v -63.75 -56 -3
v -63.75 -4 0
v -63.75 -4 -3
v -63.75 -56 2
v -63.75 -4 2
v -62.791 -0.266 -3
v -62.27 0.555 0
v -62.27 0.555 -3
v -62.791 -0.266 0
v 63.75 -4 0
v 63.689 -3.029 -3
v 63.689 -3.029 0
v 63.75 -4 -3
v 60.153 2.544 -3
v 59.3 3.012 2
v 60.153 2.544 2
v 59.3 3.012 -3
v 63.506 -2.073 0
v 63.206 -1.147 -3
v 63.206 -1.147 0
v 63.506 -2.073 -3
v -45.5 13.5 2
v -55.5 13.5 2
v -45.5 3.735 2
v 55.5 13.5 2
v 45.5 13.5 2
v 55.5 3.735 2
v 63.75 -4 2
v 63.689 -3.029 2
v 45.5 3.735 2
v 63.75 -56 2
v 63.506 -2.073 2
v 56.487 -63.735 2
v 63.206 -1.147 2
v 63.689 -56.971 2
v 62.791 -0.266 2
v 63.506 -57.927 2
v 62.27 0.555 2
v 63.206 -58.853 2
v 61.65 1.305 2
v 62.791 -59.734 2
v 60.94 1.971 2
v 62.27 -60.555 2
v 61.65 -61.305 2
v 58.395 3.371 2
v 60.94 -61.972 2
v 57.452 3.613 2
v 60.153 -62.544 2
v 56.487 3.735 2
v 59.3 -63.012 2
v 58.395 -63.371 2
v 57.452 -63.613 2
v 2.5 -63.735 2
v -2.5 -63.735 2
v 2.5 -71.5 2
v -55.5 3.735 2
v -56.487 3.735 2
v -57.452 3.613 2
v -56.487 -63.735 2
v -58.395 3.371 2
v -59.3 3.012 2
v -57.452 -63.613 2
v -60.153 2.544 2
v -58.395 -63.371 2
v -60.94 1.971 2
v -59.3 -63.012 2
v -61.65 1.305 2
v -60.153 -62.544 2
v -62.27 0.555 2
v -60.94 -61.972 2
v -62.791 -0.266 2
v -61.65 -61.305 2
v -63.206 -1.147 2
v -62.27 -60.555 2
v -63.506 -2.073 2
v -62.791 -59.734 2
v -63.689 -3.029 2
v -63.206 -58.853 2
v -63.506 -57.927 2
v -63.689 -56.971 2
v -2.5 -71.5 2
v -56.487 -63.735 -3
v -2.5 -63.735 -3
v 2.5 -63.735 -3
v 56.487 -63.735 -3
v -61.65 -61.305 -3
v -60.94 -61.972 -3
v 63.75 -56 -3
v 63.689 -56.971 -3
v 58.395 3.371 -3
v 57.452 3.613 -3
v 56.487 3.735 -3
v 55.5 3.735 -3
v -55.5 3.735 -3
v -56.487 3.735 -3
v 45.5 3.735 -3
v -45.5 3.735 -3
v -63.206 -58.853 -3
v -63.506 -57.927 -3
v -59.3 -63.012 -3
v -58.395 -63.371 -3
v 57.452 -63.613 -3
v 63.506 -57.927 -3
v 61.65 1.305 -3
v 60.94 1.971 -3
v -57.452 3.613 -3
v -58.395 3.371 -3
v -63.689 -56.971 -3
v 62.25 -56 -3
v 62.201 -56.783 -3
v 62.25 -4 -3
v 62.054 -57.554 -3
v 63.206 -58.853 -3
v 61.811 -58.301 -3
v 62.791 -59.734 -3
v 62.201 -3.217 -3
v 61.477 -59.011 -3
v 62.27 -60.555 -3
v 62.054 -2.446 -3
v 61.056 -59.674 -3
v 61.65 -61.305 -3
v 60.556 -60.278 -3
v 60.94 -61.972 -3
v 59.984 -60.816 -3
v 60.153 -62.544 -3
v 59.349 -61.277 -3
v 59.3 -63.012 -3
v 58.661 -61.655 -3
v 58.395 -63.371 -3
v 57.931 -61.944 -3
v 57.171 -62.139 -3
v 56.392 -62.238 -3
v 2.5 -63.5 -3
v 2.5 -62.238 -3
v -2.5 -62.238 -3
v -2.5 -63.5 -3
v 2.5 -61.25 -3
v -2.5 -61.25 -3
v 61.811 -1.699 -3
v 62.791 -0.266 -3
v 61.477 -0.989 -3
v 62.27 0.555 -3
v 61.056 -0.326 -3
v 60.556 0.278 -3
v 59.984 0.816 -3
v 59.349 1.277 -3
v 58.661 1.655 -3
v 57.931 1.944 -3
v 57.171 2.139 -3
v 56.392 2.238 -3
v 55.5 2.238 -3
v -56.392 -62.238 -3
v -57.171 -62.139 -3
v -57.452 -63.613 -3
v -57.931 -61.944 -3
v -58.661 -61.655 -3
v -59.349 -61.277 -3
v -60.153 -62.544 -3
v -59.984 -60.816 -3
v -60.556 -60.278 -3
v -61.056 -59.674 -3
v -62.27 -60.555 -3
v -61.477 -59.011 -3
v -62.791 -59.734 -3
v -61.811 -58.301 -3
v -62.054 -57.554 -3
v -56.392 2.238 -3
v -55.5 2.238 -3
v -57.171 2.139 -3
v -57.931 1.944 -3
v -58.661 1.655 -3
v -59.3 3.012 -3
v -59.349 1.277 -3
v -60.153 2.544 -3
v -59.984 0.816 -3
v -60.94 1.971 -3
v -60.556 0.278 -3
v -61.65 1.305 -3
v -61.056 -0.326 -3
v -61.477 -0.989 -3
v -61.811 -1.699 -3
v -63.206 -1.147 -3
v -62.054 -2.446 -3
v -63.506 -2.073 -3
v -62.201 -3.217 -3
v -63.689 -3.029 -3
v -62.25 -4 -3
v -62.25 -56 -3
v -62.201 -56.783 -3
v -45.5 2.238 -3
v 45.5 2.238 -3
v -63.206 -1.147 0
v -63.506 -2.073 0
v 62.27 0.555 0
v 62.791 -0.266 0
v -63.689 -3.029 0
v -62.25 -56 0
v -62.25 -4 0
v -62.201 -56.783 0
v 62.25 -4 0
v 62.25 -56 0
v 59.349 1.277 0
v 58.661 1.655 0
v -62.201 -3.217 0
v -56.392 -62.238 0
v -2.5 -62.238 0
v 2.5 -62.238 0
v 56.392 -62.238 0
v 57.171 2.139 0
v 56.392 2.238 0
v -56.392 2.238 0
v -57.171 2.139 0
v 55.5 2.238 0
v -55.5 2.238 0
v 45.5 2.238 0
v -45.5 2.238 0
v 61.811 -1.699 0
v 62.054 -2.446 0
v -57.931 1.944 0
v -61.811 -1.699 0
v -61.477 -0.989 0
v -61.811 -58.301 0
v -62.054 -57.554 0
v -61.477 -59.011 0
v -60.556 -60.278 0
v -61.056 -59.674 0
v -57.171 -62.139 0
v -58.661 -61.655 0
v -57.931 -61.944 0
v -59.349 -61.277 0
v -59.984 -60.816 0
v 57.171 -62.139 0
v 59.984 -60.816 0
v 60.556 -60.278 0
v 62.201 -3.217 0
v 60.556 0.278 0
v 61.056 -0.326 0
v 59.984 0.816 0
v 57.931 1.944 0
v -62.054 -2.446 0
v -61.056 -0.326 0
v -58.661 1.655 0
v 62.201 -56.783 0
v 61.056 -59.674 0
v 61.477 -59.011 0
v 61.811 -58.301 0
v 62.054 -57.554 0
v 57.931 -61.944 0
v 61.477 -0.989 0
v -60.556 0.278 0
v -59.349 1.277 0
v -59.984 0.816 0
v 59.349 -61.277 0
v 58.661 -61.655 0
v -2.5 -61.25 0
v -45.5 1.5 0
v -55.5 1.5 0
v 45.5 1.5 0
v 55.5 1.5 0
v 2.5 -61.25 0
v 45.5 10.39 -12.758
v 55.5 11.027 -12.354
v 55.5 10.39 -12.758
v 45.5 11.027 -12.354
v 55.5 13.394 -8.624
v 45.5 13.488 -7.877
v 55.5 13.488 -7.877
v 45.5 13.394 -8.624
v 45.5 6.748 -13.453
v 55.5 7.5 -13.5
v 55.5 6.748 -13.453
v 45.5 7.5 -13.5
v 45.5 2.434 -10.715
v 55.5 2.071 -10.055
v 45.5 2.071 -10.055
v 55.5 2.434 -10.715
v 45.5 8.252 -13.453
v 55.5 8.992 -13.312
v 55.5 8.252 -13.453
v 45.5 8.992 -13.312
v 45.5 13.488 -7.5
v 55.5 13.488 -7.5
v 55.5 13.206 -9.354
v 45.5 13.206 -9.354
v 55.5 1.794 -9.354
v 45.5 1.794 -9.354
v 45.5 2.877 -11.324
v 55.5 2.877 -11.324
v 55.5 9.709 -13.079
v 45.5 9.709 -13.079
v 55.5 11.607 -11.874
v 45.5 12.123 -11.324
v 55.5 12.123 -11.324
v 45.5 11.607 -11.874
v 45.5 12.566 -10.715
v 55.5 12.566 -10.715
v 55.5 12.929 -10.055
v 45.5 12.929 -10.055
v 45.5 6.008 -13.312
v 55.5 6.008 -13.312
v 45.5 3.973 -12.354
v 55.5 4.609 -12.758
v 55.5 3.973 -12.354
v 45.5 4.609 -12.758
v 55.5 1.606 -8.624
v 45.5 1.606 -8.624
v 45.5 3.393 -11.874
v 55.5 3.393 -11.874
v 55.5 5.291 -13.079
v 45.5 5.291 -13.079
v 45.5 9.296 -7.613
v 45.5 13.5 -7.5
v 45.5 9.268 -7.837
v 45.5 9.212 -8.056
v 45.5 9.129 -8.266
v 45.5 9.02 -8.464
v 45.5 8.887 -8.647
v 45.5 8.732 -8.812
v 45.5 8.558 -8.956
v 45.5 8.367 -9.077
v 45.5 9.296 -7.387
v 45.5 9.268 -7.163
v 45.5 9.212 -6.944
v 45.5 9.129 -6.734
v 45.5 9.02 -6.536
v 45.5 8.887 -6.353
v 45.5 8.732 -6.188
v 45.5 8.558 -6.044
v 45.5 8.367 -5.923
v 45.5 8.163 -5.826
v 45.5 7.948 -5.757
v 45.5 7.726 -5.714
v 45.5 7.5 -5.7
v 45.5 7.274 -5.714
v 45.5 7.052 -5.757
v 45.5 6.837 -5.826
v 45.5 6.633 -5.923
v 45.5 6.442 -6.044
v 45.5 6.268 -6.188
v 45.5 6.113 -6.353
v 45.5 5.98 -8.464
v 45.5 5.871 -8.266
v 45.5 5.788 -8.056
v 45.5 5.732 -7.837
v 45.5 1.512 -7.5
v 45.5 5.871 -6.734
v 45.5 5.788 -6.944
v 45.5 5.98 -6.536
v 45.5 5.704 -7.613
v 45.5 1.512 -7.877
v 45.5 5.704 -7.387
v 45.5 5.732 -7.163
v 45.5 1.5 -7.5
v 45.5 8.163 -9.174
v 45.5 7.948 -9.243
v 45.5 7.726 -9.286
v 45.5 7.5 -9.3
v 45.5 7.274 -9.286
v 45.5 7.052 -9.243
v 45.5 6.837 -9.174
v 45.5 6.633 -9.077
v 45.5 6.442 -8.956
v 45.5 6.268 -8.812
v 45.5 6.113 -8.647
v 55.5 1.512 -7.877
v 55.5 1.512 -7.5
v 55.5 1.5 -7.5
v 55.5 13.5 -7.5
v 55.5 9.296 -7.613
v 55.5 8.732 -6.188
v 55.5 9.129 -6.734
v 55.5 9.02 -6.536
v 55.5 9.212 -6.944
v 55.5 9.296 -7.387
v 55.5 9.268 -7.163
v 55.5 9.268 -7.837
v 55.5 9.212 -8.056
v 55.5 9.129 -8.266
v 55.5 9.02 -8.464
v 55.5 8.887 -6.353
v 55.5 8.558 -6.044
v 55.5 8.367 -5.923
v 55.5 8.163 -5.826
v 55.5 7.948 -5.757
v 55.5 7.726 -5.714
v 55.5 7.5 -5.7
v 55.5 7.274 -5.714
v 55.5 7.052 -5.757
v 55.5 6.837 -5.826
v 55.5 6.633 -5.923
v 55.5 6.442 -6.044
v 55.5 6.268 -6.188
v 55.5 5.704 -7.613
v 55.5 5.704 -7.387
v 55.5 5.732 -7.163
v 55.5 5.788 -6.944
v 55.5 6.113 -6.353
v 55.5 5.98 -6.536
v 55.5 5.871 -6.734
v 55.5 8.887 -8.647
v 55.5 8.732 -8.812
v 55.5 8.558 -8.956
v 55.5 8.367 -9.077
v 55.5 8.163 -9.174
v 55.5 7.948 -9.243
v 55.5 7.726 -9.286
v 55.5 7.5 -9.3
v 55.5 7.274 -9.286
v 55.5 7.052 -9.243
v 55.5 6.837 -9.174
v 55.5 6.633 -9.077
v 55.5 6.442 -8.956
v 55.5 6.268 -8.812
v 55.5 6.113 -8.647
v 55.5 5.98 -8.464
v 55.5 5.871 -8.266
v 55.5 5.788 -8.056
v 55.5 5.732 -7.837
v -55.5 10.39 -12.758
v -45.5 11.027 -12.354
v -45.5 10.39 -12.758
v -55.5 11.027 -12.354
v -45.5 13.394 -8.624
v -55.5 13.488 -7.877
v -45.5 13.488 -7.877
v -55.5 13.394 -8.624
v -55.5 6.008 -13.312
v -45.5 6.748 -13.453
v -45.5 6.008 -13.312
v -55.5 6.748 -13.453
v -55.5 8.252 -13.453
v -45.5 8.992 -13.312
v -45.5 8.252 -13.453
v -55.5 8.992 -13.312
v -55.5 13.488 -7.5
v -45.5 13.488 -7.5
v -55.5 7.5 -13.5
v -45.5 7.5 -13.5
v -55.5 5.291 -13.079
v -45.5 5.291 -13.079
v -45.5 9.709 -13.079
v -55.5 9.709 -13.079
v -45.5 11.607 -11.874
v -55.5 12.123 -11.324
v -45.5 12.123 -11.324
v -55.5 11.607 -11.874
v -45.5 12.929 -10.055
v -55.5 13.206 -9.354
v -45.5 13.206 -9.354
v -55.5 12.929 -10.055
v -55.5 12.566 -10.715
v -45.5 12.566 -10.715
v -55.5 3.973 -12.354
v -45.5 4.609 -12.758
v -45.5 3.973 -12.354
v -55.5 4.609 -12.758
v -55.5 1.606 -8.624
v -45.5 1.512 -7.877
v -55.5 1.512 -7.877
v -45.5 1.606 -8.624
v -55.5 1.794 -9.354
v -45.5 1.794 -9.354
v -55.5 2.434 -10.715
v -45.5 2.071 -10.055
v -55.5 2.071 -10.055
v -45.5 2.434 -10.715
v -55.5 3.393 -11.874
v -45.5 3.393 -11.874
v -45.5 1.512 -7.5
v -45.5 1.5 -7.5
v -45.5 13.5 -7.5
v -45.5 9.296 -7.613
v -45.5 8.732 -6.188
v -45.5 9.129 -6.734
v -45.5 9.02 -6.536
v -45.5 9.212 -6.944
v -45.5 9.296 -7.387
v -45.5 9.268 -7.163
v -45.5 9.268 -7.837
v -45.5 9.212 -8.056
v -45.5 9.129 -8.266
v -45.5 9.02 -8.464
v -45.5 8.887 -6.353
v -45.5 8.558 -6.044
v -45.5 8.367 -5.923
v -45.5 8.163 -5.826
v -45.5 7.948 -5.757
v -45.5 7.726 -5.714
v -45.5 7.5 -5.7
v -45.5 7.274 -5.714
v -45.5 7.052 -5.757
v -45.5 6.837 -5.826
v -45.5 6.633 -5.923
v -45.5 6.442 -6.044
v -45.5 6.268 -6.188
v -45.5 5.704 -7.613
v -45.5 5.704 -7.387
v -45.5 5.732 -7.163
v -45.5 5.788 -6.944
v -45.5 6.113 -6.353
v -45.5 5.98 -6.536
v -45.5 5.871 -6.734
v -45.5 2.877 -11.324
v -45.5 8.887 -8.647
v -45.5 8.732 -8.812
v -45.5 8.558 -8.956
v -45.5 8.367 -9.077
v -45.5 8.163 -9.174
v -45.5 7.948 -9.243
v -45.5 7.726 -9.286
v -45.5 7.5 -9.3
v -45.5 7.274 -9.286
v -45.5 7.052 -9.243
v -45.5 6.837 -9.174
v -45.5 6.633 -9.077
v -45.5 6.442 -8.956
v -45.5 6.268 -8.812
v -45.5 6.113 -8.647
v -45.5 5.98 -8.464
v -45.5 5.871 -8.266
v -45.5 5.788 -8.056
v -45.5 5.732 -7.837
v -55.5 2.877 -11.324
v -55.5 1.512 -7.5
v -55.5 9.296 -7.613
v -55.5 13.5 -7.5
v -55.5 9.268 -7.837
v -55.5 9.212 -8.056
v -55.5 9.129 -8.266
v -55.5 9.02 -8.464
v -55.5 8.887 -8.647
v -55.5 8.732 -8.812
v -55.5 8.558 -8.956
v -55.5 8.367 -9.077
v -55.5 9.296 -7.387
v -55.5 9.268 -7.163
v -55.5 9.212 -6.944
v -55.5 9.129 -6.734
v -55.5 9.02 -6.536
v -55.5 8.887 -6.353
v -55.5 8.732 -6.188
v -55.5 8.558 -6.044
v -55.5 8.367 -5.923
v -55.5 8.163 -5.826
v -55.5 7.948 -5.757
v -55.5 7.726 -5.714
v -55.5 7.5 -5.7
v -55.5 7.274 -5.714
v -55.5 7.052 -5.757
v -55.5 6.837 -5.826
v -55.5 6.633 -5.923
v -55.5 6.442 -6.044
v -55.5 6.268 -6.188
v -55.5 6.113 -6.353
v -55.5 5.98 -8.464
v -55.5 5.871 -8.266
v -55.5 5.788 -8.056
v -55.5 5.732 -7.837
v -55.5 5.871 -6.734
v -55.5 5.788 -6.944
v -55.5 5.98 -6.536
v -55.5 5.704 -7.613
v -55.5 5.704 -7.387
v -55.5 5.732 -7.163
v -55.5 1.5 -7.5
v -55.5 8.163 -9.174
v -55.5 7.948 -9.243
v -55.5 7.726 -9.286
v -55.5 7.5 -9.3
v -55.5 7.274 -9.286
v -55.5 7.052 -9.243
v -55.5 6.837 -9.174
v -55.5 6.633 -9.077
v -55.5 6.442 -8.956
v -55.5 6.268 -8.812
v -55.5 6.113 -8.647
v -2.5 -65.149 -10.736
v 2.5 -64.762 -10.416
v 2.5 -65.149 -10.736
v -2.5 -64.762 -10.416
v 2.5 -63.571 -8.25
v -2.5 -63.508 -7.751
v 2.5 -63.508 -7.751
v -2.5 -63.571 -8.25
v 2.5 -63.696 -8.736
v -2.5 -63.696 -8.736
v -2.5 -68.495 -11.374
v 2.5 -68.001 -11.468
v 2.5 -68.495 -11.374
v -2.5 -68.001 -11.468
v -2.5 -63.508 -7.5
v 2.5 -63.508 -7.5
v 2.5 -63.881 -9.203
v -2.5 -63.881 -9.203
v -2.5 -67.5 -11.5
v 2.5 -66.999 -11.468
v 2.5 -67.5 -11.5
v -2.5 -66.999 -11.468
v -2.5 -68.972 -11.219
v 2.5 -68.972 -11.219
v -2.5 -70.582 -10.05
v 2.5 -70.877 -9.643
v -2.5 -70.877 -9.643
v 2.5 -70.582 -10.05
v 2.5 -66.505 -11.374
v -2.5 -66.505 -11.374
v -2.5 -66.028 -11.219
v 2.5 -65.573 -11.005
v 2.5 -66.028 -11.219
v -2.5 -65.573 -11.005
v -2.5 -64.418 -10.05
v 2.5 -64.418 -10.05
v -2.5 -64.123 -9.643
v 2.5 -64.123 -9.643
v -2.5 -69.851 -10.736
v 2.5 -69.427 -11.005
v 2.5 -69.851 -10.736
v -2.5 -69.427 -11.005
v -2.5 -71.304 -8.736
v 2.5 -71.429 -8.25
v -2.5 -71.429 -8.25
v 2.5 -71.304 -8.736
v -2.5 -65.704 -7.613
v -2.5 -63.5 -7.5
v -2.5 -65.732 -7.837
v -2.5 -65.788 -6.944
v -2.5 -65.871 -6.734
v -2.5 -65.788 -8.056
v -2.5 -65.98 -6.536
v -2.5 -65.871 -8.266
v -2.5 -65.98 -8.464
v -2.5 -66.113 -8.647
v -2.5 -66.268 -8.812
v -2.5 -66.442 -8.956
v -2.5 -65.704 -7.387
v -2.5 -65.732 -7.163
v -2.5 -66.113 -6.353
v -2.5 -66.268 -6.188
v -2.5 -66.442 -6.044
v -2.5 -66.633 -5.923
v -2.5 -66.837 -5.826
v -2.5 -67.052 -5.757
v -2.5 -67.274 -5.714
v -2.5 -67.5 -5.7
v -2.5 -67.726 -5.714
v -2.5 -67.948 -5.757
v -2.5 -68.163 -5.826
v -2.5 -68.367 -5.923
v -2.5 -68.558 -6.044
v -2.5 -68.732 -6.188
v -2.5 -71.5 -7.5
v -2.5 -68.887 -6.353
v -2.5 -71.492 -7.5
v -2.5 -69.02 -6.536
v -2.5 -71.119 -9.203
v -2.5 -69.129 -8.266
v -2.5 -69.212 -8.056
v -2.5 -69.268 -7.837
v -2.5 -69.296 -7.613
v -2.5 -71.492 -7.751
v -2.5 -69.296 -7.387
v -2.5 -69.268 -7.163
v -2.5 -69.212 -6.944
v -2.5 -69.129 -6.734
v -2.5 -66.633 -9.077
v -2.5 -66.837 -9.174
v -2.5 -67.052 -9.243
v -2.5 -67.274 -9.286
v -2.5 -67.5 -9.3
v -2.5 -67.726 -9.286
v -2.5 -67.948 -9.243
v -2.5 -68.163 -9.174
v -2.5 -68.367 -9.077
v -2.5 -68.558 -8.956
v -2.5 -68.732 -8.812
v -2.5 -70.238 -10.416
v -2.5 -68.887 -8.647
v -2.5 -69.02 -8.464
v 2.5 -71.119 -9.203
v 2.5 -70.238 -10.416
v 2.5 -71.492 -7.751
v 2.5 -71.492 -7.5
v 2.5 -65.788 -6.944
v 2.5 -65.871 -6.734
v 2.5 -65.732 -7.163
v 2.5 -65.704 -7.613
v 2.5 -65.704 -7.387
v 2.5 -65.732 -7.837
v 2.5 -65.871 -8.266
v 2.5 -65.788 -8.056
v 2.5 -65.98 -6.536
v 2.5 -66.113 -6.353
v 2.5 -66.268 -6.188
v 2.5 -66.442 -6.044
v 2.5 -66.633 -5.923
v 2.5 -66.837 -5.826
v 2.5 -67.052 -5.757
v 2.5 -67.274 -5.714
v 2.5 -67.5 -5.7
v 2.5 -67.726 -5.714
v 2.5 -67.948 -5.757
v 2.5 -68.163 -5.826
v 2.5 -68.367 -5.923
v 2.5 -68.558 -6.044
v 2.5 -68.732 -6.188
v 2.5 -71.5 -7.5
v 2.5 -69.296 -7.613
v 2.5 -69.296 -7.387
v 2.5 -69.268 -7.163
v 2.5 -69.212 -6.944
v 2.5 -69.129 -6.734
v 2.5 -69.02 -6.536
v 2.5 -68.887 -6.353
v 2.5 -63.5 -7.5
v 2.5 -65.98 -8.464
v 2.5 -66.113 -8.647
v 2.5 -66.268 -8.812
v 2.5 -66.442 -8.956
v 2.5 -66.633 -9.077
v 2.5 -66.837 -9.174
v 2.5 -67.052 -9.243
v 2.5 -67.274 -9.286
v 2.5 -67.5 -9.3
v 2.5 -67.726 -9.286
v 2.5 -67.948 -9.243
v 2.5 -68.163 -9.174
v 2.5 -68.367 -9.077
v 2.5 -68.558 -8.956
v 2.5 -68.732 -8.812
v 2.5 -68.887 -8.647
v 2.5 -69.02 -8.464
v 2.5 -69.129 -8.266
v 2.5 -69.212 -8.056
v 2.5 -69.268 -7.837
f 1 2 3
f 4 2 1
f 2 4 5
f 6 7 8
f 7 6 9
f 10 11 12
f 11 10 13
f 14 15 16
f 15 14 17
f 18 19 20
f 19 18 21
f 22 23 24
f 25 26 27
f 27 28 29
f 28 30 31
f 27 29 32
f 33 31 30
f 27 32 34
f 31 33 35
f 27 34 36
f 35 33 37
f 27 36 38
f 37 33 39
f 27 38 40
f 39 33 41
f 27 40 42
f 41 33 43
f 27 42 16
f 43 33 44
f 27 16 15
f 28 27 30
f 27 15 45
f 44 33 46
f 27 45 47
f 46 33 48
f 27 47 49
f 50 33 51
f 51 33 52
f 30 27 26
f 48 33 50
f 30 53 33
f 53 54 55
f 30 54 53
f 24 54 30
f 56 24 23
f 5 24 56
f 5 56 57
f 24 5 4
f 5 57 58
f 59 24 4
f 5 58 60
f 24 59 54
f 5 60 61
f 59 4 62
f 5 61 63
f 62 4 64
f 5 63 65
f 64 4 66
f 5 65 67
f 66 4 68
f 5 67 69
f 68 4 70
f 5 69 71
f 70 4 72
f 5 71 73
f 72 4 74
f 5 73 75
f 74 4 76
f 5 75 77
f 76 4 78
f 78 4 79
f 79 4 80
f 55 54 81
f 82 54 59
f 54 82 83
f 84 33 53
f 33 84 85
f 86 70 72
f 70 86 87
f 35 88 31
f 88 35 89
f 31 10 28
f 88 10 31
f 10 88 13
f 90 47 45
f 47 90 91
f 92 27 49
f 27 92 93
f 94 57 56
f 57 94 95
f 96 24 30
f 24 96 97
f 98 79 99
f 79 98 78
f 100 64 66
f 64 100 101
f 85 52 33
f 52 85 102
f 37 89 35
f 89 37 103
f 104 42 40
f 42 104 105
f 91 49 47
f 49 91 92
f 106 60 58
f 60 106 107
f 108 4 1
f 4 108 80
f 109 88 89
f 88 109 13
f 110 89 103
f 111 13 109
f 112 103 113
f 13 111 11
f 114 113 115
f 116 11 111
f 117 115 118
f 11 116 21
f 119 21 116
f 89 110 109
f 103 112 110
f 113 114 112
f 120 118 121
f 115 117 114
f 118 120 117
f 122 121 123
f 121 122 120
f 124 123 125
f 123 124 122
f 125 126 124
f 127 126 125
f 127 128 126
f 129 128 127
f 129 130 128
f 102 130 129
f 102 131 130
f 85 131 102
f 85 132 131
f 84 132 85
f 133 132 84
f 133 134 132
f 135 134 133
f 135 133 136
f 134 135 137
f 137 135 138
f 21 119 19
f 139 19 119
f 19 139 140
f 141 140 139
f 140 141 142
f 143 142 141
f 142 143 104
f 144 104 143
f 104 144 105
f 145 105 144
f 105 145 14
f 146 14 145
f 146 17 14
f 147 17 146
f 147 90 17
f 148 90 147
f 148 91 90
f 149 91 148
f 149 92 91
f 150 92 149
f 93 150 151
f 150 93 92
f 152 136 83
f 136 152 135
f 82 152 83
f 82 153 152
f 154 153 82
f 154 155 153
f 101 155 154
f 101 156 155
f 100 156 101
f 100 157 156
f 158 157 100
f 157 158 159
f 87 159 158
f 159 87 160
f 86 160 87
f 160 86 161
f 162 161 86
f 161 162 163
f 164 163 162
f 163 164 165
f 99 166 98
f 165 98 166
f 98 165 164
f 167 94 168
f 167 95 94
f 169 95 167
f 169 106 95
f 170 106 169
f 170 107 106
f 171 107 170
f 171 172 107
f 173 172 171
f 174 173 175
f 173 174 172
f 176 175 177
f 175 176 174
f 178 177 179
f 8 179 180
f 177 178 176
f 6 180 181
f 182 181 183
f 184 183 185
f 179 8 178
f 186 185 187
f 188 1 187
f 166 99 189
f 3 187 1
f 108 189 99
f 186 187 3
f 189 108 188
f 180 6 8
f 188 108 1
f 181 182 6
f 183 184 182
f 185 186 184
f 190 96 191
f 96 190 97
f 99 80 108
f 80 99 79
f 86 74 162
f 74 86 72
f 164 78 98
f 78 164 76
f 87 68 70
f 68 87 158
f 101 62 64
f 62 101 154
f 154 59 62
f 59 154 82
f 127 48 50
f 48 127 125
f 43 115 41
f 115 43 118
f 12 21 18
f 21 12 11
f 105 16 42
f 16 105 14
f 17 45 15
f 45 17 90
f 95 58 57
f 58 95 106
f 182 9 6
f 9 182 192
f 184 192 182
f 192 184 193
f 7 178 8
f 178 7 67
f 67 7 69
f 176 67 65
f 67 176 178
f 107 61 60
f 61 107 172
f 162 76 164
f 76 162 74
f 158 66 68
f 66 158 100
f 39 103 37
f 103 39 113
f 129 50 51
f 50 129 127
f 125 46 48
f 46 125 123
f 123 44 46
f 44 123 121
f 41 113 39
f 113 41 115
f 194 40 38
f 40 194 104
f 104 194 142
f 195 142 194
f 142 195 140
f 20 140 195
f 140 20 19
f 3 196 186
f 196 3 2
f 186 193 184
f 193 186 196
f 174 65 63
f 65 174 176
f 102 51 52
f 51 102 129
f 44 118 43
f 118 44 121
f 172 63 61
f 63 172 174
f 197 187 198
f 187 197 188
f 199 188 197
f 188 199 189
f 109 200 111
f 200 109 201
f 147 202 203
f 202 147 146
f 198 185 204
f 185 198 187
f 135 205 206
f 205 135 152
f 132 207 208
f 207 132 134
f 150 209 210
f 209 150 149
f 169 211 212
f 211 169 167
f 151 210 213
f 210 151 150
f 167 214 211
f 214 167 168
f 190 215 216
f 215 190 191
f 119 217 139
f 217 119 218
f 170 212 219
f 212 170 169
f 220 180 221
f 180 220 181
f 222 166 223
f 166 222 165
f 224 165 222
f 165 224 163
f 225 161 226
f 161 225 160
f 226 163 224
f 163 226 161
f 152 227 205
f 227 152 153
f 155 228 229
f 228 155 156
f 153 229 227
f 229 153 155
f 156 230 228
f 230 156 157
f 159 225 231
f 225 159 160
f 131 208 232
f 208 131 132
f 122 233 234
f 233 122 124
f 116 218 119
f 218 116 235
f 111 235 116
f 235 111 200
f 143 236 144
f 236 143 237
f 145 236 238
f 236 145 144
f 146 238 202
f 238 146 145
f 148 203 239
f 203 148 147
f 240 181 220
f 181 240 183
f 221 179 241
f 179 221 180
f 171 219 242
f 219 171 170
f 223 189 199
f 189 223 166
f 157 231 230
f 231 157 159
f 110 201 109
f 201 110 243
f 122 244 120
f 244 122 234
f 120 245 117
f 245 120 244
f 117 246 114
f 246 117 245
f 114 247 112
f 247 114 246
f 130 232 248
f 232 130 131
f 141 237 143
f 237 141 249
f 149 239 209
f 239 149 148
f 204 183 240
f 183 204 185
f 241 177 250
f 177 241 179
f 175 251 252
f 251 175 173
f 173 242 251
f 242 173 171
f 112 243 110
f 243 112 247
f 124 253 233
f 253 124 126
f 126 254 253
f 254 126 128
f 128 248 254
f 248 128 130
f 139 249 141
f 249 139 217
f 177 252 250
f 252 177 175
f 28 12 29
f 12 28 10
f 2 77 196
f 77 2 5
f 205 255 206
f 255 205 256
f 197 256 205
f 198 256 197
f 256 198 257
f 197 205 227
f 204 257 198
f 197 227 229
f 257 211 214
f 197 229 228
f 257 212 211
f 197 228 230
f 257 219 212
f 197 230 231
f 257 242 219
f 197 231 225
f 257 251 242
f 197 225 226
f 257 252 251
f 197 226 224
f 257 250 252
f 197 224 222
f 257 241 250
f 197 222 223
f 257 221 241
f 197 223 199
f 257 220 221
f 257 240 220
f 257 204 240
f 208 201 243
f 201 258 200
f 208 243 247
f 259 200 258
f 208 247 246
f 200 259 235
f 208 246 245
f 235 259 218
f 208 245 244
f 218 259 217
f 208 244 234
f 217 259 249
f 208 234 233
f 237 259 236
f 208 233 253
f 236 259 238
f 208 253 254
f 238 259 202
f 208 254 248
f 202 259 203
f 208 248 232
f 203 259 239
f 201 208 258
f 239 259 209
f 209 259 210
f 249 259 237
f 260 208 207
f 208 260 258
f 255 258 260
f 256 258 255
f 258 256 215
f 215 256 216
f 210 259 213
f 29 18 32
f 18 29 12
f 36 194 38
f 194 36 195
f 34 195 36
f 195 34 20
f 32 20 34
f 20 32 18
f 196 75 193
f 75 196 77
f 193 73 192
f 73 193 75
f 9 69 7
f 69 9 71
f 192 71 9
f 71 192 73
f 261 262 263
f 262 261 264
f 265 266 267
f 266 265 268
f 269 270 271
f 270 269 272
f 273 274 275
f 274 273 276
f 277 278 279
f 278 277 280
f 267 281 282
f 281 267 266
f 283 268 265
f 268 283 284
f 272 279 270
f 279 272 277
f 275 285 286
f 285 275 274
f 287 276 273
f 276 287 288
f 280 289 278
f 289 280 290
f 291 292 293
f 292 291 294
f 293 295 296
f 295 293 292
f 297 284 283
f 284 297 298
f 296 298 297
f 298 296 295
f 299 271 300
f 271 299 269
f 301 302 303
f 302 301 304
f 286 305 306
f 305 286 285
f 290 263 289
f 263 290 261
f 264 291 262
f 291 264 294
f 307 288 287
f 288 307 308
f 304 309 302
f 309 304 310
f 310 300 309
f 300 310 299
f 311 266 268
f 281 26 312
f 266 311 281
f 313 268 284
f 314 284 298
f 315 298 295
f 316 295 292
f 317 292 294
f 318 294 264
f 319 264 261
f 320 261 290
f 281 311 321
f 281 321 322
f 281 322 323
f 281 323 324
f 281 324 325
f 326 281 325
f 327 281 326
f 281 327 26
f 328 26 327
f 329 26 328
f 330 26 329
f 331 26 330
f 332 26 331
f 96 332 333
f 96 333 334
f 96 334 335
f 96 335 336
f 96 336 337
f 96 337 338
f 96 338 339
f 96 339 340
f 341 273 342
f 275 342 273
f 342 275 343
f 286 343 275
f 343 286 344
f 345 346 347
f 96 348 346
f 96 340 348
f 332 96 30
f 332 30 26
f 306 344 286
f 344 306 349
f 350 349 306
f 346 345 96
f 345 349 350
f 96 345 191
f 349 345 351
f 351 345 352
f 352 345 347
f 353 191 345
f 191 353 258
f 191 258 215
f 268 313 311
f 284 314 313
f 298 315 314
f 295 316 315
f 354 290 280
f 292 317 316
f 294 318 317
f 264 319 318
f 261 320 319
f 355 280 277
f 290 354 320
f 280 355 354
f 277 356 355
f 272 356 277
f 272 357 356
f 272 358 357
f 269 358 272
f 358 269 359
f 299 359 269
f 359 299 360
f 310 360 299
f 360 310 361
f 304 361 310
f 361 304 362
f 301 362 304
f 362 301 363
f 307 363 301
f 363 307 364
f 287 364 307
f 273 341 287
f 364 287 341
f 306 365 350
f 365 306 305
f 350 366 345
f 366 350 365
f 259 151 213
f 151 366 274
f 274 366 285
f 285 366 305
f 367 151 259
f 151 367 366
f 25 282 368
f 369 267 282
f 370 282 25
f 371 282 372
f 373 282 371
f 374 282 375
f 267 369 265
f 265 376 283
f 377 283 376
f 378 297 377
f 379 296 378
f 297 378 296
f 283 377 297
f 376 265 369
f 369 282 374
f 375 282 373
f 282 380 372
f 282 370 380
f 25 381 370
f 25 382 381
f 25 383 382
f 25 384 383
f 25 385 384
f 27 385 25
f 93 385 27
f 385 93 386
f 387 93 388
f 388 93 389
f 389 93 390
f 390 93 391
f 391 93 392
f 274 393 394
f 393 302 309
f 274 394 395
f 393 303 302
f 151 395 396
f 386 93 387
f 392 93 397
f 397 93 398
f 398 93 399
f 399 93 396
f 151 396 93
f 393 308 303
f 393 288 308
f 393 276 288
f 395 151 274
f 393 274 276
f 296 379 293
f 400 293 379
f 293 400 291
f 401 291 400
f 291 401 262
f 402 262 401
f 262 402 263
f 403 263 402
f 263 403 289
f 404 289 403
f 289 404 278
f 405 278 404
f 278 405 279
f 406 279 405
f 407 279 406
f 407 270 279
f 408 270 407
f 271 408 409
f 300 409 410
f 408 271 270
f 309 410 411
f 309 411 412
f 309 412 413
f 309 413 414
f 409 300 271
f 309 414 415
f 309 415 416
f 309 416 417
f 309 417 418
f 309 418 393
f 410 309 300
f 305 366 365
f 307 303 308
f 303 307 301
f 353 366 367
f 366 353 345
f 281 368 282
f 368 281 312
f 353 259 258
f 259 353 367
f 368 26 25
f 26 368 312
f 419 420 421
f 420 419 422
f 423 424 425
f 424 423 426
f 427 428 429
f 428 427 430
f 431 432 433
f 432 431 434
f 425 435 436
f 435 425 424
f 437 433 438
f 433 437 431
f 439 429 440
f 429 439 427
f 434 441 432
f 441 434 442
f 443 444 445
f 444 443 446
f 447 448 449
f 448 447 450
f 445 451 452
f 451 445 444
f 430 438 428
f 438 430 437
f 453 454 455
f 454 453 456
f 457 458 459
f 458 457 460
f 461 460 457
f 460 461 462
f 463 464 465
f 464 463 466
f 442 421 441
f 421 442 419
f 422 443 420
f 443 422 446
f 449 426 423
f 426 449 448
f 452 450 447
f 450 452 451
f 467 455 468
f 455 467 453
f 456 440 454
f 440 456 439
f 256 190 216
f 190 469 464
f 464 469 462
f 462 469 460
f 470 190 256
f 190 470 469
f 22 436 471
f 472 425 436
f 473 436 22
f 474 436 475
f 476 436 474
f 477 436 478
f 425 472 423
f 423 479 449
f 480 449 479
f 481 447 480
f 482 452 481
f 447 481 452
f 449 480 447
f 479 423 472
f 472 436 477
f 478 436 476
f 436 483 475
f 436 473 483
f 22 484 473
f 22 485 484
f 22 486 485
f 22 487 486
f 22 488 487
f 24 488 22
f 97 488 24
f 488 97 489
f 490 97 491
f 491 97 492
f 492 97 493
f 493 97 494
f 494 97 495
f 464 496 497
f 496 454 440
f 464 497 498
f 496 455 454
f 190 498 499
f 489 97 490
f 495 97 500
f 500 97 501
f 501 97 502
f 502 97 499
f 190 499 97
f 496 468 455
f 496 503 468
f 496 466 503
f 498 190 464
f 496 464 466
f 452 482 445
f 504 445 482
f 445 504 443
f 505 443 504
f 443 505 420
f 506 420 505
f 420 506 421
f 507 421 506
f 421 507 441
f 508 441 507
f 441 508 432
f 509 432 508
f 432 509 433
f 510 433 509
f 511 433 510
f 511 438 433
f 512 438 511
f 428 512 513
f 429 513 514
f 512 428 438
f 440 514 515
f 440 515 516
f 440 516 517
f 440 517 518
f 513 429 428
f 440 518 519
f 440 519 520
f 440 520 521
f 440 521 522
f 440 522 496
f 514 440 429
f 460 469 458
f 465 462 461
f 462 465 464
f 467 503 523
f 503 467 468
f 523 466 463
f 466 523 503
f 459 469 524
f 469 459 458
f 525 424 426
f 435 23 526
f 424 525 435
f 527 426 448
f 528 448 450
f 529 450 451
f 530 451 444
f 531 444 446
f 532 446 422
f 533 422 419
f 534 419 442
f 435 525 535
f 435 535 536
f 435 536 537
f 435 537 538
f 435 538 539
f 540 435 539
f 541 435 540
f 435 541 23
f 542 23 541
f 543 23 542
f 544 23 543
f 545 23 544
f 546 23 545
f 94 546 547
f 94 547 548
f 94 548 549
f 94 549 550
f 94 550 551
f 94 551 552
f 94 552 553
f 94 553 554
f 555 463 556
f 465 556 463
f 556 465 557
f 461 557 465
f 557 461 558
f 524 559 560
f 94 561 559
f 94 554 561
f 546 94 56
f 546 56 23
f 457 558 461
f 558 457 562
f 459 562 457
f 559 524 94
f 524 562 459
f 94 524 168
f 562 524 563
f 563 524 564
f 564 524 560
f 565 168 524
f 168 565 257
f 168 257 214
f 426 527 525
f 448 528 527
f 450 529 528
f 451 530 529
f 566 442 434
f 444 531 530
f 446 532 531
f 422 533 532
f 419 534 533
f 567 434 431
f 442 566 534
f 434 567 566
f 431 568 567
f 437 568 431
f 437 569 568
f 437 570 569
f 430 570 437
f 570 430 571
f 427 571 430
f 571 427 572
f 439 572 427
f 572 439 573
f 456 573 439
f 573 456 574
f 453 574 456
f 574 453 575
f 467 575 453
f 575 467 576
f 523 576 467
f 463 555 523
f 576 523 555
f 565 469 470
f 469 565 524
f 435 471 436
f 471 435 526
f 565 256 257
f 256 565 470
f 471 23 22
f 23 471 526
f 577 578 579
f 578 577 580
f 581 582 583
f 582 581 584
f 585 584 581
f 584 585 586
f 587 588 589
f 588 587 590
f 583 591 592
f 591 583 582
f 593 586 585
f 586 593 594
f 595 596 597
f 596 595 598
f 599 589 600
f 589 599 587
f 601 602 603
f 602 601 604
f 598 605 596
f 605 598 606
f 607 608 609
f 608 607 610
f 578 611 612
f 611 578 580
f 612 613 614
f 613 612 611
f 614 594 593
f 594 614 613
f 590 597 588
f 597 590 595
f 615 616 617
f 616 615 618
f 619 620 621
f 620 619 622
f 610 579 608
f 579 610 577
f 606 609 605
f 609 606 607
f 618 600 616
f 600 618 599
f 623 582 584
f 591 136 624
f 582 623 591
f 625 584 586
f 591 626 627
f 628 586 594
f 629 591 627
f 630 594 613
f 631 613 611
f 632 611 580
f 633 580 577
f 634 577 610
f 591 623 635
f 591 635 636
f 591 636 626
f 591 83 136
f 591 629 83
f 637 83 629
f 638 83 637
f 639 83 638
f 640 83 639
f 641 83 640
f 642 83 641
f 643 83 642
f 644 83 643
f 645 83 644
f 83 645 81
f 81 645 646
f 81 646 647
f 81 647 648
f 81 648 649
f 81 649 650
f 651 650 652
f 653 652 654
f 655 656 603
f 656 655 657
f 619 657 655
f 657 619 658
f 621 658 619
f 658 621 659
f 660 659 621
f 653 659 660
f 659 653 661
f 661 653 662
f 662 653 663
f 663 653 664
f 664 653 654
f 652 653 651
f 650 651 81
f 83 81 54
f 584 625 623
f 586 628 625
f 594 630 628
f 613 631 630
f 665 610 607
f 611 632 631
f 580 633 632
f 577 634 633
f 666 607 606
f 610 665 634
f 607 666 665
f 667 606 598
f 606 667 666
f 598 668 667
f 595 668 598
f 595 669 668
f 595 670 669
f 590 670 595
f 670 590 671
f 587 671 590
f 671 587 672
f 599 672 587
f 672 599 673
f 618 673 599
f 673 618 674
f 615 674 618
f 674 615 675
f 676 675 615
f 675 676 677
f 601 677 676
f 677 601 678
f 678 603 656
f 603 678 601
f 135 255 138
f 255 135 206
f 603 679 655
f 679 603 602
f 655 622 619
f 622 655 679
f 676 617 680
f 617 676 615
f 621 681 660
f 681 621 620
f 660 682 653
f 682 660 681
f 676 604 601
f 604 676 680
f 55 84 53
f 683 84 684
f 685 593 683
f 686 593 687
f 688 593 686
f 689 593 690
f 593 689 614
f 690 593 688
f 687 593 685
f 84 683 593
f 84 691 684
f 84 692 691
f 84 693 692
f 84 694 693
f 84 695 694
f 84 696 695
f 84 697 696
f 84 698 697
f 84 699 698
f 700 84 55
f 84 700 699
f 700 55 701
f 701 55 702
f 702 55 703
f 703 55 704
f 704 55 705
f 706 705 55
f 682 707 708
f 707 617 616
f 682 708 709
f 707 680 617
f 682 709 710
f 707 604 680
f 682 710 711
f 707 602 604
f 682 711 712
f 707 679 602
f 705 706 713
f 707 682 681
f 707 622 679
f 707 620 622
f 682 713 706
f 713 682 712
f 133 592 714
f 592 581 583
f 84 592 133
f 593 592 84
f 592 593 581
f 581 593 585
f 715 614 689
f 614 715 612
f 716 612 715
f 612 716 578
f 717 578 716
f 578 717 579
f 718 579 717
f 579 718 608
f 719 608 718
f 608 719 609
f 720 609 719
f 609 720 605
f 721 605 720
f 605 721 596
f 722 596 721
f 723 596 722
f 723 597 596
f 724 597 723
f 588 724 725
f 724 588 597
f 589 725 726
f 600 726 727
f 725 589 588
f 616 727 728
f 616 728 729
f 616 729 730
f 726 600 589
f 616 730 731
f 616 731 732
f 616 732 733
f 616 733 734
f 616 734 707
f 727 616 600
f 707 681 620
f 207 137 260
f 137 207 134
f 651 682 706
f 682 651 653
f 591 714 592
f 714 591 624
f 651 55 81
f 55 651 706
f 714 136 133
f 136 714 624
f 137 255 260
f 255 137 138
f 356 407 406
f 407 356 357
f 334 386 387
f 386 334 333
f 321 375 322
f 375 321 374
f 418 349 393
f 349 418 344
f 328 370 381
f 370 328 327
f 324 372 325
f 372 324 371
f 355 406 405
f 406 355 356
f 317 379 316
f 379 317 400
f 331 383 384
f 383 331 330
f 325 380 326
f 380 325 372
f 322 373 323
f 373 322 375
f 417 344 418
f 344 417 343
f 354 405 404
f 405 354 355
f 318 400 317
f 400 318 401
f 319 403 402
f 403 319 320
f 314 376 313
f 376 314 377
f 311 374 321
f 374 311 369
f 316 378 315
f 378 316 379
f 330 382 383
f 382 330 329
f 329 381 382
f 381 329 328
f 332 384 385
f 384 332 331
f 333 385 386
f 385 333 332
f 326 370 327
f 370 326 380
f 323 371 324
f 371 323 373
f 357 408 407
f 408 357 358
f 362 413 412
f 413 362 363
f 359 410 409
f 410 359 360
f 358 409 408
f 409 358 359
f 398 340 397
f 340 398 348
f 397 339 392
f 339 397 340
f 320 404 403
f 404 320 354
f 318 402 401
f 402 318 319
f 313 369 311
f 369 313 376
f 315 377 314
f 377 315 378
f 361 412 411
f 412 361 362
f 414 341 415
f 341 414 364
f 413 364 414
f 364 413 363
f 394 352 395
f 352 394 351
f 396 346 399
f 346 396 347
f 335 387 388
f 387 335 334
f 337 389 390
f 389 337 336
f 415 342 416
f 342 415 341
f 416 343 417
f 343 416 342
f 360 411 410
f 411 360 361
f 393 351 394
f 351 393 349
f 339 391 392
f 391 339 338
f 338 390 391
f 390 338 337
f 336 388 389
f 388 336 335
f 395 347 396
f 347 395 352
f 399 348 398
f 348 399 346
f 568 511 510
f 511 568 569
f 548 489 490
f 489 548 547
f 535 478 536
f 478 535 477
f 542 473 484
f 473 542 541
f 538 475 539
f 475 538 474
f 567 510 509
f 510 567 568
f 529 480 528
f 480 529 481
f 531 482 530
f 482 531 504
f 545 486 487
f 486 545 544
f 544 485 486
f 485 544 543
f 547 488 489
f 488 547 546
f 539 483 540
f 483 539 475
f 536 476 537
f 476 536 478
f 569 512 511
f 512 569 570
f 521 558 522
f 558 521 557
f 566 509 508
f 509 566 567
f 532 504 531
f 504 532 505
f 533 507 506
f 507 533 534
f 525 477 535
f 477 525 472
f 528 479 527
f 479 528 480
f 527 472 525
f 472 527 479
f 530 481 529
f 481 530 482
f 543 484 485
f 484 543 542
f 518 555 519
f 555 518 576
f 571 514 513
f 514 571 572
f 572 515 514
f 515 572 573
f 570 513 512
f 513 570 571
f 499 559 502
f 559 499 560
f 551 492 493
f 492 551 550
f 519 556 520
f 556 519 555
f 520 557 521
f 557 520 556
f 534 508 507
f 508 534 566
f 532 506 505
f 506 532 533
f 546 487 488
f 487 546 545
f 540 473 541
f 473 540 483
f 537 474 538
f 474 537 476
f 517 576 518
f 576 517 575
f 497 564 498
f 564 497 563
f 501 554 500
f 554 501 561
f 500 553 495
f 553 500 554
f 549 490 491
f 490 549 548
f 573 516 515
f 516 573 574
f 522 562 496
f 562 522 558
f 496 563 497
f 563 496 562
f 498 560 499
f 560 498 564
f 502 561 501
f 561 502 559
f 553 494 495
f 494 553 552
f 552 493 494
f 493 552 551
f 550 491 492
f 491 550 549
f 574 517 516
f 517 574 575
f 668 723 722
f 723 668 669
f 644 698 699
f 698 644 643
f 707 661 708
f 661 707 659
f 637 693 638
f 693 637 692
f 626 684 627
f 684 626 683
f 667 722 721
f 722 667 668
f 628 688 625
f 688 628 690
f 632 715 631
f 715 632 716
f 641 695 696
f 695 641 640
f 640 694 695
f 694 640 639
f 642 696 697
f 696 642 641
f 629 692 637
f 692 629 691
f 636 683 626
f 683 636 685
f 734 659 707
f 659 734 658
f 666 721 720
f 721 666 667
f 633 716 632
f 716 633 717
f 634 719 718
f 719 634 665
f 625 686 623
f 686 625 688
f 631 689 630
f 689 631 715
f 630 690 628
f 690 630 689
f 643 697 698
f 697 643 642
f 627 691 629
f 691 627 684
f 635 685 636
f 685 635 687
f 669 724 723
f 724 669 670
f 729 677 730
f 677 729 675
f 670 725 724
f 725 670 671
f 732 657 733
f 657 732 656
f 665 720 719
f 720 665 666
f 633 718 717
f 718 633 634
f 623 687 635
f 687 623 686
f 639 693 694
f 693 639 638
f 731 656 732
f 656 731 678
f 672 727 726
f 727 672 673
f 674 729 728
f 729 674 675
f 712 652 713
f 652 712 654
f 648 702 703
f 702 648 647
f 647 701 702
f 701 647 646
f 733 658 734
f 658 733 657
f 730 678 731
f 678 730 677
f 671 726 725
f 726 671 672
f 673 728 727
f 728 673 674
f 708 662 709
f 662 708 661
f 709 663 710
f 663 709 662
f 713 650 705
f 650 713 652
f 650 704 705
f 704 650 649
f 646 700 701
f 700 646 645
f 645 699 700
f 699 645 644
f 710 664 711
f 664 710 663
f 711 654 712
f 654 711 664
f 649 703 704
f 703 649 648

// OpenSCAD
$fn = 50;


difference() {
	union() {
		translate(v = [0, -30.0000000000, -3]) {
			rotate(a = [0, 0, 0]) {
				difference() {
					union() {
						hull() {
							translate(v = [-56.0000000000, 26.0000000000, 0]) {
								cylinder(h = 5, r = 7.7500000000);
							}
							translate(v = [56.0000000000, 26.0000000000, 0]) {
								cylinder(h = 5, r = 7.7500000000);
							}
							translate(v = [-56.0000000000, -26.0000000000, 0]) {
								cylinder(h = 5, r = 7.7500000000);
							}
							translate(v = [56.0000000000, -26.0000000000, 0]) {
								cylinder(h = 5, r = 7.7500000000);
							}
						}
					}
					union() {
						hull() {
							translate(v = [-56.0000000000, 26.0000000000, 0]) {
								cylinder(h = 5, r = 6.2500000000);
							}
							translate(v = [56.0000000000, 26.0000000000, 0]) {
								cylinder(h = 5, r = 6.2500000000);
							}
							translate(v = [-56.0000000000, -26.0000000000, 0]) {
								cylinder(h = 5, r = 6.2500000000);
							}
							translate(v = [56.0000000000, -26.0000000000, 0]) {
								cylinder(h = 5, r = 6.2500000000);
							}
						}
					}
				}
			}
		}
		translate(v = [0, -30.0000000000, 0]) {
			hull() {
				translate(v = [-56.0000000000, 26.0000000000, 0]) {
					cylinder(h = 2, r = 7.7500000000);
				}
				translate(v = [56.0000000000, 26.0000000000, 0]) {
					cylinder(h = 2, r = 7.7500000000);
				}
				translate(v = [-56.0000000000, -26.0000000000, 0]) {
					cylinder(h = 2, r = 7.7500000000);
				}
				translate(v = [56.0000000000, -26.0000000000, 0]) {
					cylinder(h = 2, r = 7.7500000000);
				}
			}
		}
		translate(v = [45.5000000000, 7.5000000000, -7.5000000000]) {
			rotate(a = [0, 90, 0]) {
				cylinder(h = 10, r = 6.0000000000);
			}
		}
		translate(v = [45.5000000000, 1.5000000000, -7.5000000000]) {
			cube(size = [10, 12, 7.5000000000]);
		}
		translate(v = [45.5000000000, -15.0000000000, 0.0000000000]) {
			cube(size = [10, 28.5000000000, 2]);
		}
		translate(v = [-55.5000000000, 7.5000000000, -7.5000000000]) {
			rotate(a = [0, 90, 0]) {
				cylinder(h = 10, r = 6.0000000000);
			}
		}
		translate(v = [-55.5000000000, 1.5000000000, -7.5000000000]) {
			cube(size = [10, 12, 7.5000000000]);
		}
		translate(v = [-55.5000000000, -15.0000000000, 0.0000000000]) {
			cube(size = [10, 28.5000000000, 2]);
		}
		translate(v = [-2.5000000000, -67.5000000000, -7.5000000000]) {
			rotate(a = [0, 90, 0]) {
				cylinder(h = 5, r = 4.0000000000);
			}
		}
		translate(v = [-2.5000000000, -71.5000000000, -7.5000000000]) {
			cube(size = [5, 8, 7.5000000000]);
		}
		translate(v = [-2.5000000000, -71.5000000000, -3.0000000000]) {
			cube(size = [5, 10.2500000000, 5]);
		}
	}
	union() {
		translate(v = [45.5000000000, 7.5000000000, -7.5000000000]) {
			rotate(a = [0, 90, 0]) {
				cylinder(h = 10, r = 1.8000000000);
			}
		}
		translate(v = [-55.5000000000, 7.5000000000, -7.5000000000]) {
			rotate(a = [0, 90, 0]) {
				cylinder(h = 10, r = 1.8000000000);
			}
		}
		translate(v = [-5.0000000000, -67.5000000000, -7.5000000000]) {
			rotate(a = [0, 90, 0]) {
				cylinder(h = 10, r = 1.8000000000);
			}
		}
	}
}
